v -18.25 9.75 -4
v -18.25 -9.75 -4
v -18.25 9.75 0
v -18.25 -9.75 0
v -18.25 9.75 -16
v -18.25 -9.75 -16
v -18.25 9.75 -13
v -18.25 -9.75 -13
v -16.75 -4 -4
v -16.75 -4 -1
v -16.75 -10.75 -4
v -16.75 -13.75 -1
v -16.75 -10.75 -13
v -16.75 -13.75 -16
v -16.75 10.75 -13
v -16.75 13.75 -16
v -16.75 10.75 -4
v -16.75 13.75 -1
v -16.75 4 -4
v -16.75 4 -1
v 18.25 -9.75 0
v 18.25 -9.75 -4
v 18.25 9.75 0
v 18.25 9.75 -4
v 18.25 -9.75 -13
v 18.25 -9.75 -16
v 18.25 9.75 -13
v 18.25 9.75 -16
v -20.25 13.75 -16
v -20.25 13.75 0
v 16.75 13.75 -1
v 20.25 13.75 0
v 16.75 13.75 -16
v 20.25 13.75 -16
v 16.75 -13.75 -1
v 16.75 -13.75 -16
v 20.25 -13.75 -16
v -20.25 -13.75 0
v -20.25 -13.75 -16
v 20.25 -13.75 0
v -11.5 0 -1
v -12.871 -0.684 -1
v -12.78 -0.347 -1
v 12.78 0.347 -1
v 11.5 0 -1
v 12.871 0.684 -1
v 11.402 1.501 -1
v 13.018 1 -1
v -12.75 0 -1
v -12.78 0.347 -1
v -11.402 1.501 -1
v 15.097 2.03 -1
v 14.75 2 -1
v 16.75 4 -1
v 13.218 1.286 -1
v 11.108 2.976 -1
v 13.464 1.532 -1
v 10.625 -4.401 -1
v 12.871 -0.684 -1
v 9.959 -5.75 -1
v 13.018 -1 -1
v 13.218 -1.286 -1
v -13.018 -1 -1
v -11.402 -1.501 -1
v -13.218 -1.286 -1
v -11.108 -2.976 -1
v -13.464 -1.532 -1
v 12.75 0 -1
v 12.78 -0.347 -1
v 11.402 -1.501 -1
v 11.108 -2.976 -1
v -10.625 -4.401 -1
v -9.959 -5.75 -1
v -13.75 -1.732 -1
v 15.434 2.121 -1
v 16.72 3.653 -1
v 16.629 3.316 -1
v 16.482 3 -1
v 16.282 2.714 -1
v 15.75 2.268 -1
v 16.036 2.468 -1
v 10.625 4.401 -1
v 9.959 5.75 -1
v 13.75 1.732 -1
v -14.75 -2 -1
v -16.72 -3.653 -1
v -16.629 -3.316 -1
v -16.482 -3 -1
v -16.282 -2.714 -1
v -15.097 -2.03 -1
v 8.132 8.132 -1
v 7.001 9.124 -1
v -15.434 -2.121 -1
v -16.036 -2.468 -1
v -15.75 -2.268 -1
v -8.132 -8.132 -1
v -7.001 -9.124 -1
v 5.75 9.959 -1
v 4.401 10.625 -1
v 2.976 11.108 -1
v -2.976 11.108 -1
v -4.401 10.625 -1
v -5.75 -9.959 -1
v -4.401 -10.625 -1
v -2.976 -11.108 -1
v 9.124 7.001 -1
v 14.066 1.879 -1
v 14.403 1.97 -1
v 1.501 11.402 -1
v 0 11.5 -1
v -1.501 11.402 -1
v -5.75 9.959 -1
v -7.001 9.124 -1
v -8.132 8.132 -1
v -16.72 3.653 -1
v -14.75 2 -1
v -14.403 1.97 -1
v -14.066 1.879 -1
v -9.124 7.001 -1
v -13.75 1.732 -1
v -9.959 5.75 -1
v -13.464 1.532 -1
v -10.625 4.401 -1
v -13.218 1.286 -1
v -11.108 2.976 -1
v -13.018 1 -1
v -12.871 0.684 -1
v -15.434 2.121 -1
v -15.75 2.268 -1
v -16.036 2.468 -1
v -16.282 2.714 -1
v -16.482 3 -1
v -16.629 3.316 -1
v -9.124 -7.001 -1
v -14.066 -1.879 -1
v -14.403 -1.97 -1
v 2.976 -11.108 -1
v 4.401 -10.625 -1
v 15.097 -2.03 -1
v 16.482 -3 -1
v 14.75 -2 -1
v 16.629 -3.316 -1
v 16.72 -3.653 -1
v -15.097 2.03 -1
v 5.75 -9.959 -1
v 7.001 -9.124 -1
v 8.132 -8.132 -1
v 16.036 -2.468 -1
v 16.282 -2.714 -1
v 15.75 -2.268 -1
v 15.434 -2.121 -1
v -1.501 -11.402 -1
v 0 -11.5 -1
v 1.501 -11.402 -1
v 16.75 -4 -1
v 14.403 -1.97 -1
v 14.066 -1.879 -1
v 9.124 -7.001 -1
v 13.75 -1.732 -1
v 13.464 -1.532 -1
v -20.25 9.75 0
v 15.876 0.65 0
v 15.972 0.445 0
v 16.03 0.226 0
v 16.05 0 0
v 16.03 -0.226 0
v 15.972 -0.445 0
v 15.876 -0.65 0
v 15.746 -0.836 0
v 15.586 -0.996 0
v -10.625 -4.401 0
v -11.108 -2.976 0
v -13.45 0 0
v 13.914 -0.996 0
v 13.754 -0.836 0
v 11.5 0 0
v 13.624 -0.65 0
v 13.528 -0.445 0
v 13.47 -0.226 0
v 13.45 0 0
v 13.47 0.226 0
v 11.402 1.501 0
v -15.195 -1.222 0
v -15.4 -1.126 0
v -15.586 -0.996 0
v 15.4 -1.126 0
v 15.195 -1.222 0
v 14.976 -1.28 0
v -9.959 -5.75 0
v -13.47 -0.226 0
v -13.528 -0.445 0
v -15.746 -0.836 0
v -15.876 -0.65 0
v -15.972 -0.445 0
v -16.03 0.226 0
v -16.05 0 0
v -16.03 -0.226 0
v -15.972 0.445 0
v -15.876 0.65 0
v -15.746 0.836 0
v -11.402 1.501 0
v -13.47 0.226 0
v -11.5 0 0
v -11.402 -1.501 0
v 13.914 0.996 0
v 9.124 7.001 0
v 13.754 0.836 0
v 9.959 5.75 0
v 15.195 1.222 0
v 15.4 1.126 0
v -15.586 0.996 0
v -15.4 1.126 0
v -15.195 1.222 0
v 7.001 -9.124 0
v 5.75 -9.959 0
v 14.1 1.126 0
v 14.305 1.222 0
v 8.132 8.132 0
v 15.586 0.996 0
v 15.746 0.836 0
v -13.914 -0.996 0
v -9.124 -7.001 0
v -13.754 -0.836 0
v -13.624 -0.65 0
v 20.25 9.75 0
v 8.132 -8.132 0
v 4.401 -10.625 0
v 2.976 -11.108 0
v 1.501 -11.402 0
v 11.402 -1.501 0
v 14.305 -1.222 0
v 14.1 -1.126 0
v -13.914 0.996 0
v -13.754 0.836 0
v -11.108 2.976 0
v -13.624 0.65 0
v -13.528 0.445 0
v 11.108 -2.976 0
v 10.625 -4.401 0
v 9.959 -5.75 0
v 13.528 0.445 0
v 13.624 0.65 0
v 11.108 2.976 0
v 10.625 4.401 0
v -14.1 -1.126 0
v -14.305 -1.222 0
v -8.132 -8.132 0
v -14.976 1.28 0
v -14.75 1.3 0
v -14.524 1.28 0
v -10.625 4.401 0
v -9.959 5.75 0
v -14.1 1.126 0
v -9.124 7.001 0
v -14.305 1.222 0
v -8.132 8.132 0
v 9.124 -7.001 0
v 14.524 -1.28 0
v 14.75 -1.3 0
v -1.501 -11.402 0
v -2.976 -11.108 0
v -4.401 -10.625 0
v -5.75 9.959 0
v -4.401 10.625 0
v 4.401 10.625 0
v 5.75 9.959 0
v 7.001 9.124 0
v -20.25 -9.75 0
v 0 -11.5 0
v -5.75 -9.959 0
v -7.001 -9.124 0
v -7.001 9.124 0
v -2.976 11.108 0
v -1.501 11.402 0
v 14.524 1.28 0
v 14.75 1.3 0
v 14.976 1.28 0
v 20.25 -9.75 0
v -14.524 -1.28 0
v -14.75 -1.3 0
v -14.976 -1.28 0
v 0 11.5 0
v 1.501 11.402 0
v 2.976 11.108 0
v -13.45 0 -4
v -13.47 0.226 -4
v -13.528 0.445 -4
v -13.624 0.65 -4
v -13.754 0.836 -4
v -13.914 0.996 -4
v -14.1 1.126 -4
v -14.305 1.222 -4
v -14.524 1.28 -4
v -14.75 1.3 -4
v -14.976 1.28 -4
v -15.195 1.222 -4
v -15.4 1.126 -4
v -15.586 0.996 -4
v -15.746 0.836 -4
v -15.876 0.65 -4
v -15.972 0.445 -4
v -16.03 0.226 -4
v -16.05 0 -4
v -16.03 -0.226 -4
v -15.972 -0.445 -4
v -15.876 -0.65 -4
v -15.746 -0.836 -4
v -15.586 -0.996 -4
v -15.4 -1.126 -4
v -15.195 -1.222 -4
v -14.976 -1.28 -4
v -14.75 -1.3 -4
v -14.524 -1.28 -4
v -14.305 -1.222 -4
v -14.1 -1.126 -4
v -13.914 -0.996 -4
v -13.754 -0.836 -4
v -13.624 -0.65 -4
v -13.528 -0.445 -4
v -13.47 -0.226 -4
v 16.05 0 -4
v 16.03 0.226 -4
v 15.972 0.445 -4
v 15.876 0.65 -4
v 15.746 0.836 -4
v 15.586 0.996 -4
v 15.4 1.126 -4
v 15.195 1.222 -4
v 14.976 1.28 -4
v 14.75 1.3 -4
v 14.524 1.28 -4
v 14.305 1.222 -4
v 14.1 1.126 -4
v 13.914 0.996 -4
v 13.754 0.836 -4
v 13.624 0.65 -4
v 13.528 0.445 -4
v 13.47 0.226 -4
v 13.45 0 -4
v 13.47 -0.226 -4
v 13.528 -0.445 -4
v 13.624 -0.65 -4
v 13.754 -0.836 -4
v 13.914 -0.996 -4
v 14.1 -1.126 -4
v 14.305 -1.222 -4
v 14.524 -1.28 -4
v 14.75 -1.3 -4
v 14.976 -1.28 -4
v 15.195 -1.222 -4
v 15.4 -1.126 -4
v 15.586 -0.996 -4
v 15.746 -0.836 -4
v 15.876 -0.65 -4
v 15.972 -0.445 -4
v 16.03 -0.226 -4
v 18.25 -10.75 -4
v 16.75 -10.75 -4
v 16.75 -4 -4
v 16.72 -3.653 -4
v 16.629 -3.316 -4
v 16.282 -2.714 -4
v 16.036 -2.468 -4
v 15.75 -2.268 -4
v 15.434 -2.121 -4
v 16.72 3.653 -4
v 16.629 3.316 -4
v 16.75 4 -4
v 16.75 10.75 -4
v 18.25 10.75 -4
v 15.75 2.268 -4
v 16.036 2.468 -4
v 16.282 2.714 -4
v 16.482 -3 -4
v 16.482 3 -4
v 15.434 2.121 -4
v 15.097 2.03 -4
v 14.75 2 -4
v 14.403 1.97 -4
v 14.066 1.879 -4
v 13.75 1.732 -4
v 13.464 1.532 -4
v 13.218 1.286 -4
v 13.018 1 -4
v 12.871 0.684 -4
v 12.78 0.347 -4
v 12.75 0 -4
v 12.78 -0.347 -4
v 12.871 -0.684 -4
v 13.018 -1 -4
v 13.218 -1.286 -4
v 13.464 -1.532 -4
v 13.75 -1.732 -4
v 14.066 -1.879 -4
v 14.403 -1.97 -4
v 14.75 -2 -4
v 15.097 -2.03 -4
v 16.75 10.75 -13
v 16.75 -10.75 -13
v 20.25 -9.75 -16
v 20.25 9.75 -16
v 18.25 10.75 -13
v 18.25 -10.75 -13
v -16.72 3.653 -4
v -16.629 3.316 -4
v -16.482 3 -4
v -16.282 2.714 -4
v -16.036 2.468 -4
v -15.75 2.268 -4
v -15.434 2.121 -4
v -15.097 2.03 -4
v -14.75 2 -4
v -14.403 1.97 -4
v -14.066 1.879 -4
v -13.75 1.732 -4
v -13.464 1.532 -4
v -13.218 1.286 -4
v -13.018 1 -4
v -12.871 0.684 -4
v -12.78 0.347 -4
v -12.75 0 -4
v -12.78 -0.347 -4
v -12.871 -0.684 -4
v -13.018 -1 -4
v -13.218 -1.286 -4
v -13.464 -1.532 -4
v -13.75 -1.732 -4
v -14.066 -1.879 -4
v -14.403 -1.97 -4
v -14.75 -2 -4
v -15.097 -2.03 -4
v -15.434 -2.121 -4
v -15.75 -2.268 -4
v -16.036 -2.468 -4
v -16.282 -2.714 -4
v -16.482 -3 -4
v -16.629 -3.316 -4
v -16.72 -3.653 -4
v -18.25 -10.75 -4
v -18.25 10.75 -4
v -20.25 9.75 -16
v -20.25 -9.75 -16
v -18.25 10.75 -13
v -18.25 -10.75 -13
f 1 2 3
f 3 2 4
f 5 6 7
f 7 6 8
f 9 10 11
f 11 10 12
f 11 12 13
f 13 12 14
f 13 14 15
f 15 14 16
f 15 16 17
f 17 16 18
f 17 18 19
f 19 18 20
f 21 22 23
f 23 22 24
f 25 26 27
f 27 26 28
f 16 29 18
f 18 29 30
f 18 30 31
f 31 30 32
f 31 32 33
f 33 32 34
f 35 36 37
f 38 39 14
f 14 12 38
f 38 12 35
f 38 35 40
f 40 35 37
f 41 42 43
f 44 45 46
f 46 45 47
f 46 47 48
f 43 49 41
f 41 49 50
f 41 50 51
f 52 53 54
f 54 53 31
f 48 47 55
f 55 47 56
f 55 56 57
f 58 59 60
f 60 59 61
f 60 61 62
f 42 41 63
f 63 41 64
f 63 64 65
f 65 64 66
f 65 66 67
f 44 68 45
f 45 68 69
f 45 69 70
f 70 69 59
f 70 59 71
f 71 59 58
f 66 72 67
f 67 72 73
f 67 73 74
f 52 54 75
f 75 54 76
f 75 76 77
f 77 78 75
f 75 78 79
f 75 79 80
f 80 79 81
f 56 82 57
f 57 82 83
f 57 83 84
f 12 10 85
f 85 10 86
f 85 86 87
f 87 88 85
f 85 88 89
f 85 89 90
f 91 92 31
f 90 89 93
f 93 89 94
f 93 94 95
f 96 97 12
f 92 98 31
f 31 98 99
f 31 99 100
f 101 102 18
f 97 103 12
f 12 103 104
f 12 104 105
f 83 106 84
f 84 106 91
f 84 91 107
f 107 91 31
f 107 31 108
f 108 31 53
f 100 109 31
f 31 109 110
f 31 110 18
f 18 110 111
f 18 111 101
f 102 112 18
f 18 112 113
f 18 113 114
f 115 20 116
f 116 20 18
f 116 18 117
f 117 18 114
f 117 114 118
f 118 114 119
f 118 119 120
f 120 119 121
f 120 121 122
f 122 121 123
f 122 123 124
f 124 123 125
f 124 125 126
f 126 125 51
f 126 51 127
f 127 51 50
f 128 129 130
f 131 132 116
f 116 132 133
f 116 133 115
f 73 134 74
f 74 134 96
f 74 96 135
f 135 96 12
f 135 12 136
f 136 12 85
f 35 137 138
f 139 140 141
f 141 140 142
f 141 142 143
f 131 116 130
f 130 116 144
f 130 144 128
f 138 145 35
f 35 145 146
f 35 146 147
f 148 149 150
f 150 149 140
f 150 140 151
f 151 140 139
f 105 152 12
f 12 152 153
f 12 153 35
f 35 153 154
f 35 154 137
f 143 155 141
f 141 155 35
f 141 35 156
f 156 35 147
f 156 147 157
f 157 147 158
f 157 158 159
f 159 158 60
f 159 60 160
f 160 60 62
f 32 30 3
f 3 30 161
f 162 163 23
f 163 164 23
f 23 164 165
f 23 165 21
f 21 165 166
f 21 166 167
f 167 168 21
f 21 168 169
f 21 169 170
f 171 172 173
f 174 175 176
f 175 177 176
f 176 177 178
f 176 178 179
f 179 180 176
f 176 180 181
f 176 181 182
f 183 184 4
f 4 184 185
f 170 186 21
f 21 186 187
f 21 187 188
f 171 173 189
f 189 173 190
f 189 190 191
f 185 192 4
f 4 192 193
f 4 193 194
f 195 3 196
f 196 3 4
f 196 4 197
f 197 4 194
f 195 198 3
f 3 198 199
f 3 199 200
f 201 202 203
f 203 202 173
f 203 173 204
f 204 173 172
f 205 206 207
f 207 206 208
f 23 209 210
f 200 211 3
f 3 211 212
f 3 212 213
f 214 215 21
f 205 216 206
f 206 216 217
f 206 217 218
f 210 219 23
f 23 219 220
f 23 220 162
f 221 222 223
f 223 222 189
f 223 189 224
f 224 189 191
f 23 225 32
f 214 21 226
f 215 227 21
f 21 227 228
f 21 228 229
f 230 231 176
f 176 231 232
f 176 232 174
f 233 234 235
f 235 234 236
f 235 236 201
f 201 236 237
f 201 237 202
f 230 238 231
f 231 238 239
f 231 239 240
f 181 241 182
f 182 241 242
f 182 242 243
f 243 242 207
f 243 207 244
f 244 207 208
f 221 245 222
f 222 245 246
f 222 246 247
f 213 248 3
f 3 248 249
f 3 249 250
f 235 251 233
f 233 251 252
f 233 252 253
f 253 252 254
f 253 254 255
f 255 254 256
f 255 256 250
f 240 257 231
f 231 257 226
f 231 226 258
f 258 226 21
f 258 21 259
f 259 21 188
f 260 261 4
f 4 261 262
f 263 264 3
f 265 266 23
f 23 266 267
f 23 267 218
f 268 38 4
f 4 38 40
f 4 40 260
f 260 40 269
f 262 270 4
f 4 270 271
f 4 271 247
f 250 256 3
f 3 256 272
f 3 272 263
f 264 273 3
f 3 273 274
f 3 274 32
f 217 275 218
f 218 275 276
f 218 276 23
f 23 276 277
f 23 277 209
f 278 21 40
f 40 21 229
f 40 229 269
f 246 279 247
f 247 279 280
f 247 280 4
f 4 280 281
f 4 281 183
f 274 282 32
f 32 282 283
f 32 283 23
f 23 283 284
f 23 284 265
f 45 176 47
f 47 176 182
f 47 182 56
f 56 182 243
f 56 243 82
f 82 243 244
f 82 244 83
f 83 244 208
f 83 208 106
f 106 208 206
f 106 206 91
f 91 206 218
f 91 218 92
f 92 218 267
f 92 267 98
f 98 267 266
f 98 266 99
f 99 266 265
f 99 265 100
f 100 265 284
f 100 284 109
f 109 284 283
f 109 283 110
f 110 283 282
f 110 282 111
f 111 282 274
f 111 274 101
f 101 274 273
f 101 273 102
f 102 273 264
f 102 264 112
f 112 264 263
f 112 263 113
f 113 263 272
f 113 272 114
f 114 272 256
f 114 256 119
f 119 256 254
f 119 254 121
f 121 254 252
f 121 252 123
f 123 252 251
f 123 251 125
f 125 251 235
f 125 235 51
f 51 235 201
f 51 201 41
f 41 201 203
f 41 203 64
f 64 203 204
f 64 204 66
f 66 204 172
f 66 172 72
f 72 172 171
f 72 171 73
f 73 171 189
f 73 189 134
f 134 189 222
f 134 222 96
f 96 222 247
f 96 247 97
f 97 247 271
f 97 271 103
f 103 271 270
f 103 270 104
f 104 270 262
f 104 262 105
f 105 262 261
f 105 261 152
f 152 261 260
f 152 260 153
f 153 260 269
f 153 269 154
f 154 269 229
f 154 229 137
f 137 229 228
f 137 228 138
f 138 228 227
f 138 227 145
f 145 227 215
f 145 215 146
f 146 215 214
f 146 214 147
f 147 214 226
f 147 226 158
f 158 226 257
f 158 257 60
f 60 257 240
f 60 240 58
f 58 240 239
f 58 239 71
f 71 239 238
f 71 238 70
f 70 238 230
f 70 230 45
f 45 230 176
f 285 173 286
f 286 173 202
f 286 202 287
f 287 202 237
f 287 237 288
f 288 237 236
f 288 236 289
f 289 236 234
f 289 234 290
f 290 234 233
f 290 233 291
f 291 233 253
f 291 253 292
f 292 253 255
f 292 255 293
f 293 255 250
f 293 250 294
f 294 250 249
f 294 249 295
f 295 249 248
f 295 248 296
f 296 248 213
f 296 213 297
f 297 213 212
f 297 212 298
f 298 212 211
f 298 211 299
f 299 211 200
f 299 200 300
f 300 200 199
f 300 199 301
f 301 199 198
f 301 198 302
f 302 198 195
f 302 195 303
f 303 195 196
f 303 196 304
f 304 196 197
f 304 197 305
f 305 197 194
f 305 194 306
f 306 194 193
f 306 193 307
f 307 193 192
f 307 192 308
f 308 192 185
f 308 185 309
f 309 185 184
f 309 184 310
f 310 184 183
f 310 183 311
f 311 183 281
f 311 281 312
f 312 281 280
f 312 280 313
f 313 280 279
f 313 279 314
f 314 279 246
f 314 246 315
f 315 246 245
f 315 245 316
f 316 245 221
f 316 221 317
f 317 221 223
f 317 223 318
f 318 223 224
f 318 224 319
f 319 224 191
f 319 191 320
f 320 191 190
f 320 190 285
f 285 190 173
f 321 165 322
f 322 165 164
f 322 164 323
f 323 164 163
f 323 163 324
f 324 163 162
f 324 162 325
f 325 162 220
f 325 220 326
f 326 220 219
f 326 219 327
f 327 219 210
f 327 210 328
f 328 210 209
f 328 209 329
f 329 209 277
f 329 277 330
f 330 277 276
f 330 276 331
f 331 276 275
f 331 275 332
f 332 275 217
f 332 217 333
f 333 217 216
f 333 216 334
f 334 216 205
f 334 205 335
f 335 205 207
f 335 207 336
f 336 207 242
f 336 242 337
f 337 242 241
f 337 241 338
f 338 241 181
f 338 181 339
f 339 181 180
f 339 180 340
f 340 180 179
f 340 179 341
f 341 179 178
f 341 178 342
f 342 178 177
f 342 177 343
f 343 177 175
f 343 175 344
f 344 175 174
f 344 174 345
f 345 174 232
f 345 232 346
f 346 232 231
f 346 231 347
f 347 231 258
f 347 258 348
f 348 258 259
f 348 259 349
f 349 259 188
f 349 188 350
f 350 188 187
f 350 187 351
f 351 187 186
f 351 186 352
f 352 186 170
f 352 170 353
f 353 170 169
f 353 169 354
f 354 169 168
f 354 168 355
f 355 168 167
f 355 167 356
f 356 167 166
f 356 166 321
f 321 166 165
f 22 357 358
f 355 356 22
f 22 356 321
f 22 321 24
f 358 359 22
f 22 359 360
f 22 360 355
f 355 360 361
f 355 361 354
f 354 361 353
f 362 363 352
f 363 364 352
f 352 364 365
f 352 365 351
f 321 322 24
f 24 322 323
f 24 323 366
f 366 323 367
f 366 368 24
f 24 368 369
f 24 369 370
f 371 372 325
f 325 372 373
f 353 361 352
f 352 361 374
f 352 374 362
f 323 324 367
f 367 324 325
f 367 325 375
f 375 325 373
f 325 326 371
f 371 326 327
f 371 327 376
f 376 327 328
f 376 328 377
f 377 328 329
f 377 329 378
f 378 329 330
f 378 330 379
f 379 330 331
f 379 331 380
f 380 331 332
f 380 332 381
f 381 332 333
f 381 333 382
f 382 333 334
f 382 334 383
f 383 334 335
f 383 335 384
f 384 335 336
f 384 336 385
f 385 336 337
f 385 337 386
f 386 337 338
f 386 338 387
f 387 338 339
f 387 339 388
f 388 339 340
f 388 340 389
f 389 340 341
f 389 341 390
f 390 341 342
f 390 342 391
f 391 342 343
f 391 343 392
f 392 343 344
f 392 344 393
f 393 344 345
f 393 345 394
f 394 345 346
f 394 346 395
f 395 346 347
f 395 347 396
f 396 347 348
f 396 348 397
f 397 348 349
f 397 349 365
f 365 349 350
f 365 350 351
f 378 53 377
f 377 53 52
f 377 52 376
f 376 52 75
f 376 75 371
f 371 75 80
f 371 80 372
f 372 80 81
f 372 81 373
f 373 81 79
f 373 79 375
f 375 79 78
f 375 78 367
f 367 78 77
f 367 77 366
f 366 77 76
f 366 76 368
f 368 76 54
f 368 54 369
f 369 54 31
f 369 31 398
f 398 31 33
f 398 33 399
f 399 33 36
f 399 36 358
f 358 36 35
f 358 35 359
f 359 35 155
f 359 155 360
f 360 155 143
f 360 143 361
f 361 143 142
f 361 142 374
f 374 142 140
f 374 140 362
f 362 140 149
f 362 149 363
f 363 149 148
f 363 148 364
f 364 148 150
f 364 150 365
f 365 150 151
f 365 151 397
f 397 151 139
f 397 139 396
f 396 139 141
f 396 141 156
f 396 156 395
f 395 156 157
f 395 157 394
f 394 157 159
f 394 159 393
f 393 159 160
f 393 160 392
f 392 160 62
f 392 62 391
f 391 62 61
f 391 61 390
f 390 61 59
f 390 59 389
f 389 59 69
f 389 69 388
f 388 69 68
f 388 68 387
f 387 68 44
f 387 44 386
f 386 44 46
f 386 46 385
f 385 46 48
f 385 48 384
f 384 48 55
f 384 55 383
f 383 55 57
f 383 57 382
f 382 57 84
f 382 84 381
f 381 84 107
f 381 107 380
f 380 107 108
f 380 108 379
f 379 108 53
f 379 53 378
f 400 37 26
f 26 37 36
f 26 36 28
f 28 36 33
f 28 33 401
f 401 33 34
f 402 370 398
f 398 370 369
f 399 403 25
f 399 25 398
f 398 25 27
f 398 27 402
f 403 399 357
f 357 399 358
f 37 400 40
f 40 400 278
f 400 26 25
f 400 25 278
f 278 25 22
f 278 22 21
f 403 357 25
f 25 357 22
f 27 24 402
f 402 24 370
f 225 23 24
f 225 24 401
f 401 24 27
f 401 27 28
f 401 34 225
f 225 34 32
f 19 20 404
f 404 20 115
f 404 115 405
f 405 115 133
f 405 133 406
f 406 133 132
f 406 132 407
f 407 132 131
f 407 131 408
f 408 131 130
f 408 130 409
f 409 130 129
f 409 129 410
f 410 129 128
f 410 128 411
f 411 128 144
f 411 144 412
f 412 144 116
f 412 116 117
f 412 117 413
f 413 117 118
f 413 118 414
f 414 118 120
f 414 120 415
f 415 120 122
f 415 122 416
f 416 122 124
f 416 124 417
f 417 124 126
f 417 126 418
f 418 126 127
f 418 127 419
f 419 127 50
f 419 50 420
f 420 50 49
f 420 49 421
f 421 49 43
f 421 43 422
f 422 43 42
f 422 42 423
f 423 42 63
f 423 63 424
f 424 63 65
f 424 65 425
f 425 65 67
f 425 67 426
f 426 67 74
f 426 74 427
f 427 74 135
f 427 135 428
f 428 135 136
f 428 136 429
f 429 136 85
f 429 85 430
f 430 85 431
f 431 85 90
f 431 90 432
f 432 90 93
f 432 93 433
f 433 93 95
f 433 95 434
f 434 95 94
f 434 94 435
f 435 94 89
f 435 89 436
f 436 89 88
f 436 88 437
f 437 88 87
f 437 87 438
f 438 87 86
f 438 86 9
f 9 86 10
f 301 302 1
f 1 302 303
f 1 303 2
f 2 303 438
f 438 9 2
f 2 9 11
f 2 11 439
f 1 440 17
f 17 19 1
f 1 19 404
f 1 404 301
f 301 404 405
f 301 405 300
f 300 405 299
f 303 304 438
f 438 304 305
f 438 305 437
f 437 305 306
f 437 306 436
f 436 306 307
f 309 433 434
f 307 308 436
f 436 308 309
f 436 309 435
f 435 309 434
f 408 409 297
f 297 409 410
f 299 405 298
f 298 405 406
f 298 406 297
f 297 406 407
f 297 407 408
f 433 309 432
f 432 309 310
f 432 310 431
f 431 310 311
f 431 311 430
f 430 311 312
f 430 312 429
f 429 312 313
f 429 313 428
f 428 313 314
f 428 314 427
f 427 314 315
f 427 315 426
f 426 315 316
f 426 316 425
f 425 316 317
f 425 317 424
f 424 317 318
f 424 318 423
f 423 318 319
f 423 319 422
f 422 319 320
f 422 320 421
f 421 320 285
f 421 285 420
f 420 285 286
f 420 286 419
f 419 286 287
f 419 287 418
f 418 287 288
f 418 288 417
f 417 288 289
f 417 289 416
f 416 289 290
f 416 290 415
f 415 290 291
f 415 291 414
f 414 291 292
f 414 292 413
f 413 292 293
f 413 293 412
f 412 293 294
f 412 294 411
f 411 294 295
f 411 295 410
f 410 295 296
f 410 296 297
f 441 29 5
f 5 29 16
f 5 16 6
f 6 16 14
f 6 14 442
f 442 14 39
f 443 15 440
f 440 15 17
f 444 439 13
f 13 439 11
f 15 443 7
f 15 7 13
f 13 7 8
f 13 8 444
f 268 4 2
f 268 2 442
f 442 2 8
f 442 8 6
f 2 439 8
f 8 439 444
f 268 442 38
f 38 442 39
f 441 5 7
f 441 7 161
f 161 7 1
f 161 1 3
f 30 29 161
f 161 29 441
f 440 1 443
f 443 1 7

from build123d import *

# Parameters (mm, degrees)
SKETCH2_W           = 36.5
SKETCH2_H           = 27.5
SKETCH2_R           = 11.5
SKETCH2_R_2         = 1.3
BOSS_EXTRUDE1_DEPTH = 1
SKETCH4_R           = 1.3
BOSS_EXTRUDE2_DEPTH = 3
SKETCH5_W           = 1.5
SKETCH5_H           = 27.5
BOSS_EXTRUDE3_DEPTH = 12
SKETCH6_W           = 9
SKETCH6_H           = 21.5
CUT_EXTRUDE1_DEPTH  = 1.5
BOSS_EXTRUDE4_REACH = 29.895
SKETCH7_W           = 2
SKETCH7_H           = 4


with BuildPart() as part:
    # Sketch2 → Boss-Extrude1 (new body)
    with BuildSketch(Plane.XY):
        Rectangle(SKETCH2_W, SKETCH2_H)
        Circle(SKETCH2_R, mode=Mode.SUBTRACT)
        with Locations((-14.75, 0)):
            Circle(SKETCH2_R_2, mode=Mode.SUBTRACT)
        with Locations((14.75, 0)):
            Circle(SKETCH2_R_2, mode=Mode.SUBTRACT)
    extrude(amount=-BOSS_EXTRUDE1_DEPTH)

    # Sketch4 → Boss-Extrude2 (add)
    with BuildSketch(Plane(origin=(0, 0, -1), x_dir=(-1, 0, 0), z_dir=(0, 0, -1))):
        with BuildLine():
            Line((-16.75, 4), (-16.75, 13.75))
            Line((-16.75, 13.75), (-18.25, 13.75))
            Line((-18.25, 13.75), (-18.25, -13.75))
            Line((-18.25, -13.75), (-16.75, -13.75))
            Line((-16.75, -13.75), (-16.75, -4))
            ThreePointArc((-16.75, -4), (-16.164213562, -2.585786438), (-14.75, -2))
            ThreePointArc((-14.75, -2), (-12.75, 0), (-14.75, 2))
            ThreePointArc((-14.75, 2), (-16.164213562, 2.585786438), (-16.75, 4))
        make_face()
        with Locations((-14.75, 0)):
            Circle(SKETCH4_R, mode=Mode.SUBTRACT)
    boss_extrude2 = extrude(amount=BOSS_EXTRUDE2_DEPTH)

    # Sketch5 → Boss-Extrude3 (add)
    with BuildSketch(Plane(origin=(0, 0, -4), x_dir=(-1, 0, 0), z_dir=(0, 0, -1))):
        with Locations((-17.5, 0)):
            Rectangle(SKETCH5_W, SKETCH5_H)
    boss_extrude3 = extrude(amount=BOSS_EXTRUDE3_DEPTH)

    # Sketch6 → Cut-Extrude1 (cut)
    with BuildSketch(Plane(origin=(18.25, 0, 0), x_dir=(0, 0, -1), z_dir=(1, 0, 0))):
        with Locations((8.5, 0)):
            Rectangle(SKETCH6_W, SKETCH6_H)
    cut_extrude1 = extrude(amount=-CUT_EXTRUDE1_DEPTH, mode=Mode.SUBTRACT)

    # Boss-Extrude4: up to this face of the body (flat: up to its plane)
    boss_extrude4_end = Plane(part.part.faces().sort_by_distance((-17.792998906, 0, 0))[0])
    # Sketch7 → Boss-Extrude4 (add, up to the picked face)
    with BuildSketch(Plane(origin=(0, 0, -16), x_dir=(-1, 0, 0), z_dir=(0, 0, -1)), mode=Mode.PRIVATE) as boss_extrude4_sk1:
        with Locations((-19.25, 11.75)):
            Rectangle(SKETCH7_W, SKETCH7_H)
    boss_extrude4_tool1 = split(extrude(boss_extrude4_sk1.sketch, amount=-BOSS_EXTRUDE4_REACH, mode=Mode.PRIVATE), bisect_by=boss_extrude4_end, keep=Keep.BOTH, mode=Mode.PRIVATE)
    # Sketch7 → Boss-Extrude4 (add, up to the picked face)
    with BuildSketch(Plane(origin=(0, 0, -16), x_dir=(-1, 0, 0), z_dir=(0, 0, -1)), mode=Mode.PRIVATE) as boss_extrude4_sk2:
        with Locations((-19.25, -11.75)):
            Rectangle(SKETCH7_W, SKETCH7_H)
    boss_extrude4_tool2 = split(extrude(boss_extrude4_sk2.sketch, amount=-BOSS_EXTRUDE4_REACH, mode=Mode.PRIVATE), bisect_by=boss_extrude4_end, keep=Keep.BOTH, mode=Mode.PRIVATE)
    boss_extrude4_1 = boss_extrude4_tool1.solids().sort_by(Axis((19.25, 11.75, -16), (0, 0, 1)))[0]
    add(boss_extrude4_1)
    boss_extrude4_2 = boss_extrude4_tool2.solids().sort_by(Axis((19.25, -11.75, -16), (0, 0, 1)))[0]
    add(boss_extrude4_2)
    boss_extrude4 = boss_extrude4_1 + boss_extrude4_2  # Boss-Extrude4 as one shape, for the pattern or mirror that repeats it

    # Mirror1: Boss-Extrude2, Boss-Extrude3, Cut-Extrude1, Boss-Extrude4 across plane
    add(boss_extrude2.mirror(Plane(origin=(0, 0, 0), x_dir=(0, 0, 1), z_dir=(1, 0, 0))))
    add(boss_extrude3.mirror(Plane(origin=(0, 0, 0), x_dir=(0, 0, 1), z_dir=(1, 0, 0))))
    add(cut_extrude1.mirror(Plane(origin=(0, 0, 0), x_dir=(0, 0, 1), z_dir=(1, 0, 0))), mode=Mode.SUBTRACT)
    add(boss_extrude4.mirror(Plane(origin=(0, 0, 0), x_dir=(0, 0, 1), z_dir=(1, 0, 0))))


solid = part.part
